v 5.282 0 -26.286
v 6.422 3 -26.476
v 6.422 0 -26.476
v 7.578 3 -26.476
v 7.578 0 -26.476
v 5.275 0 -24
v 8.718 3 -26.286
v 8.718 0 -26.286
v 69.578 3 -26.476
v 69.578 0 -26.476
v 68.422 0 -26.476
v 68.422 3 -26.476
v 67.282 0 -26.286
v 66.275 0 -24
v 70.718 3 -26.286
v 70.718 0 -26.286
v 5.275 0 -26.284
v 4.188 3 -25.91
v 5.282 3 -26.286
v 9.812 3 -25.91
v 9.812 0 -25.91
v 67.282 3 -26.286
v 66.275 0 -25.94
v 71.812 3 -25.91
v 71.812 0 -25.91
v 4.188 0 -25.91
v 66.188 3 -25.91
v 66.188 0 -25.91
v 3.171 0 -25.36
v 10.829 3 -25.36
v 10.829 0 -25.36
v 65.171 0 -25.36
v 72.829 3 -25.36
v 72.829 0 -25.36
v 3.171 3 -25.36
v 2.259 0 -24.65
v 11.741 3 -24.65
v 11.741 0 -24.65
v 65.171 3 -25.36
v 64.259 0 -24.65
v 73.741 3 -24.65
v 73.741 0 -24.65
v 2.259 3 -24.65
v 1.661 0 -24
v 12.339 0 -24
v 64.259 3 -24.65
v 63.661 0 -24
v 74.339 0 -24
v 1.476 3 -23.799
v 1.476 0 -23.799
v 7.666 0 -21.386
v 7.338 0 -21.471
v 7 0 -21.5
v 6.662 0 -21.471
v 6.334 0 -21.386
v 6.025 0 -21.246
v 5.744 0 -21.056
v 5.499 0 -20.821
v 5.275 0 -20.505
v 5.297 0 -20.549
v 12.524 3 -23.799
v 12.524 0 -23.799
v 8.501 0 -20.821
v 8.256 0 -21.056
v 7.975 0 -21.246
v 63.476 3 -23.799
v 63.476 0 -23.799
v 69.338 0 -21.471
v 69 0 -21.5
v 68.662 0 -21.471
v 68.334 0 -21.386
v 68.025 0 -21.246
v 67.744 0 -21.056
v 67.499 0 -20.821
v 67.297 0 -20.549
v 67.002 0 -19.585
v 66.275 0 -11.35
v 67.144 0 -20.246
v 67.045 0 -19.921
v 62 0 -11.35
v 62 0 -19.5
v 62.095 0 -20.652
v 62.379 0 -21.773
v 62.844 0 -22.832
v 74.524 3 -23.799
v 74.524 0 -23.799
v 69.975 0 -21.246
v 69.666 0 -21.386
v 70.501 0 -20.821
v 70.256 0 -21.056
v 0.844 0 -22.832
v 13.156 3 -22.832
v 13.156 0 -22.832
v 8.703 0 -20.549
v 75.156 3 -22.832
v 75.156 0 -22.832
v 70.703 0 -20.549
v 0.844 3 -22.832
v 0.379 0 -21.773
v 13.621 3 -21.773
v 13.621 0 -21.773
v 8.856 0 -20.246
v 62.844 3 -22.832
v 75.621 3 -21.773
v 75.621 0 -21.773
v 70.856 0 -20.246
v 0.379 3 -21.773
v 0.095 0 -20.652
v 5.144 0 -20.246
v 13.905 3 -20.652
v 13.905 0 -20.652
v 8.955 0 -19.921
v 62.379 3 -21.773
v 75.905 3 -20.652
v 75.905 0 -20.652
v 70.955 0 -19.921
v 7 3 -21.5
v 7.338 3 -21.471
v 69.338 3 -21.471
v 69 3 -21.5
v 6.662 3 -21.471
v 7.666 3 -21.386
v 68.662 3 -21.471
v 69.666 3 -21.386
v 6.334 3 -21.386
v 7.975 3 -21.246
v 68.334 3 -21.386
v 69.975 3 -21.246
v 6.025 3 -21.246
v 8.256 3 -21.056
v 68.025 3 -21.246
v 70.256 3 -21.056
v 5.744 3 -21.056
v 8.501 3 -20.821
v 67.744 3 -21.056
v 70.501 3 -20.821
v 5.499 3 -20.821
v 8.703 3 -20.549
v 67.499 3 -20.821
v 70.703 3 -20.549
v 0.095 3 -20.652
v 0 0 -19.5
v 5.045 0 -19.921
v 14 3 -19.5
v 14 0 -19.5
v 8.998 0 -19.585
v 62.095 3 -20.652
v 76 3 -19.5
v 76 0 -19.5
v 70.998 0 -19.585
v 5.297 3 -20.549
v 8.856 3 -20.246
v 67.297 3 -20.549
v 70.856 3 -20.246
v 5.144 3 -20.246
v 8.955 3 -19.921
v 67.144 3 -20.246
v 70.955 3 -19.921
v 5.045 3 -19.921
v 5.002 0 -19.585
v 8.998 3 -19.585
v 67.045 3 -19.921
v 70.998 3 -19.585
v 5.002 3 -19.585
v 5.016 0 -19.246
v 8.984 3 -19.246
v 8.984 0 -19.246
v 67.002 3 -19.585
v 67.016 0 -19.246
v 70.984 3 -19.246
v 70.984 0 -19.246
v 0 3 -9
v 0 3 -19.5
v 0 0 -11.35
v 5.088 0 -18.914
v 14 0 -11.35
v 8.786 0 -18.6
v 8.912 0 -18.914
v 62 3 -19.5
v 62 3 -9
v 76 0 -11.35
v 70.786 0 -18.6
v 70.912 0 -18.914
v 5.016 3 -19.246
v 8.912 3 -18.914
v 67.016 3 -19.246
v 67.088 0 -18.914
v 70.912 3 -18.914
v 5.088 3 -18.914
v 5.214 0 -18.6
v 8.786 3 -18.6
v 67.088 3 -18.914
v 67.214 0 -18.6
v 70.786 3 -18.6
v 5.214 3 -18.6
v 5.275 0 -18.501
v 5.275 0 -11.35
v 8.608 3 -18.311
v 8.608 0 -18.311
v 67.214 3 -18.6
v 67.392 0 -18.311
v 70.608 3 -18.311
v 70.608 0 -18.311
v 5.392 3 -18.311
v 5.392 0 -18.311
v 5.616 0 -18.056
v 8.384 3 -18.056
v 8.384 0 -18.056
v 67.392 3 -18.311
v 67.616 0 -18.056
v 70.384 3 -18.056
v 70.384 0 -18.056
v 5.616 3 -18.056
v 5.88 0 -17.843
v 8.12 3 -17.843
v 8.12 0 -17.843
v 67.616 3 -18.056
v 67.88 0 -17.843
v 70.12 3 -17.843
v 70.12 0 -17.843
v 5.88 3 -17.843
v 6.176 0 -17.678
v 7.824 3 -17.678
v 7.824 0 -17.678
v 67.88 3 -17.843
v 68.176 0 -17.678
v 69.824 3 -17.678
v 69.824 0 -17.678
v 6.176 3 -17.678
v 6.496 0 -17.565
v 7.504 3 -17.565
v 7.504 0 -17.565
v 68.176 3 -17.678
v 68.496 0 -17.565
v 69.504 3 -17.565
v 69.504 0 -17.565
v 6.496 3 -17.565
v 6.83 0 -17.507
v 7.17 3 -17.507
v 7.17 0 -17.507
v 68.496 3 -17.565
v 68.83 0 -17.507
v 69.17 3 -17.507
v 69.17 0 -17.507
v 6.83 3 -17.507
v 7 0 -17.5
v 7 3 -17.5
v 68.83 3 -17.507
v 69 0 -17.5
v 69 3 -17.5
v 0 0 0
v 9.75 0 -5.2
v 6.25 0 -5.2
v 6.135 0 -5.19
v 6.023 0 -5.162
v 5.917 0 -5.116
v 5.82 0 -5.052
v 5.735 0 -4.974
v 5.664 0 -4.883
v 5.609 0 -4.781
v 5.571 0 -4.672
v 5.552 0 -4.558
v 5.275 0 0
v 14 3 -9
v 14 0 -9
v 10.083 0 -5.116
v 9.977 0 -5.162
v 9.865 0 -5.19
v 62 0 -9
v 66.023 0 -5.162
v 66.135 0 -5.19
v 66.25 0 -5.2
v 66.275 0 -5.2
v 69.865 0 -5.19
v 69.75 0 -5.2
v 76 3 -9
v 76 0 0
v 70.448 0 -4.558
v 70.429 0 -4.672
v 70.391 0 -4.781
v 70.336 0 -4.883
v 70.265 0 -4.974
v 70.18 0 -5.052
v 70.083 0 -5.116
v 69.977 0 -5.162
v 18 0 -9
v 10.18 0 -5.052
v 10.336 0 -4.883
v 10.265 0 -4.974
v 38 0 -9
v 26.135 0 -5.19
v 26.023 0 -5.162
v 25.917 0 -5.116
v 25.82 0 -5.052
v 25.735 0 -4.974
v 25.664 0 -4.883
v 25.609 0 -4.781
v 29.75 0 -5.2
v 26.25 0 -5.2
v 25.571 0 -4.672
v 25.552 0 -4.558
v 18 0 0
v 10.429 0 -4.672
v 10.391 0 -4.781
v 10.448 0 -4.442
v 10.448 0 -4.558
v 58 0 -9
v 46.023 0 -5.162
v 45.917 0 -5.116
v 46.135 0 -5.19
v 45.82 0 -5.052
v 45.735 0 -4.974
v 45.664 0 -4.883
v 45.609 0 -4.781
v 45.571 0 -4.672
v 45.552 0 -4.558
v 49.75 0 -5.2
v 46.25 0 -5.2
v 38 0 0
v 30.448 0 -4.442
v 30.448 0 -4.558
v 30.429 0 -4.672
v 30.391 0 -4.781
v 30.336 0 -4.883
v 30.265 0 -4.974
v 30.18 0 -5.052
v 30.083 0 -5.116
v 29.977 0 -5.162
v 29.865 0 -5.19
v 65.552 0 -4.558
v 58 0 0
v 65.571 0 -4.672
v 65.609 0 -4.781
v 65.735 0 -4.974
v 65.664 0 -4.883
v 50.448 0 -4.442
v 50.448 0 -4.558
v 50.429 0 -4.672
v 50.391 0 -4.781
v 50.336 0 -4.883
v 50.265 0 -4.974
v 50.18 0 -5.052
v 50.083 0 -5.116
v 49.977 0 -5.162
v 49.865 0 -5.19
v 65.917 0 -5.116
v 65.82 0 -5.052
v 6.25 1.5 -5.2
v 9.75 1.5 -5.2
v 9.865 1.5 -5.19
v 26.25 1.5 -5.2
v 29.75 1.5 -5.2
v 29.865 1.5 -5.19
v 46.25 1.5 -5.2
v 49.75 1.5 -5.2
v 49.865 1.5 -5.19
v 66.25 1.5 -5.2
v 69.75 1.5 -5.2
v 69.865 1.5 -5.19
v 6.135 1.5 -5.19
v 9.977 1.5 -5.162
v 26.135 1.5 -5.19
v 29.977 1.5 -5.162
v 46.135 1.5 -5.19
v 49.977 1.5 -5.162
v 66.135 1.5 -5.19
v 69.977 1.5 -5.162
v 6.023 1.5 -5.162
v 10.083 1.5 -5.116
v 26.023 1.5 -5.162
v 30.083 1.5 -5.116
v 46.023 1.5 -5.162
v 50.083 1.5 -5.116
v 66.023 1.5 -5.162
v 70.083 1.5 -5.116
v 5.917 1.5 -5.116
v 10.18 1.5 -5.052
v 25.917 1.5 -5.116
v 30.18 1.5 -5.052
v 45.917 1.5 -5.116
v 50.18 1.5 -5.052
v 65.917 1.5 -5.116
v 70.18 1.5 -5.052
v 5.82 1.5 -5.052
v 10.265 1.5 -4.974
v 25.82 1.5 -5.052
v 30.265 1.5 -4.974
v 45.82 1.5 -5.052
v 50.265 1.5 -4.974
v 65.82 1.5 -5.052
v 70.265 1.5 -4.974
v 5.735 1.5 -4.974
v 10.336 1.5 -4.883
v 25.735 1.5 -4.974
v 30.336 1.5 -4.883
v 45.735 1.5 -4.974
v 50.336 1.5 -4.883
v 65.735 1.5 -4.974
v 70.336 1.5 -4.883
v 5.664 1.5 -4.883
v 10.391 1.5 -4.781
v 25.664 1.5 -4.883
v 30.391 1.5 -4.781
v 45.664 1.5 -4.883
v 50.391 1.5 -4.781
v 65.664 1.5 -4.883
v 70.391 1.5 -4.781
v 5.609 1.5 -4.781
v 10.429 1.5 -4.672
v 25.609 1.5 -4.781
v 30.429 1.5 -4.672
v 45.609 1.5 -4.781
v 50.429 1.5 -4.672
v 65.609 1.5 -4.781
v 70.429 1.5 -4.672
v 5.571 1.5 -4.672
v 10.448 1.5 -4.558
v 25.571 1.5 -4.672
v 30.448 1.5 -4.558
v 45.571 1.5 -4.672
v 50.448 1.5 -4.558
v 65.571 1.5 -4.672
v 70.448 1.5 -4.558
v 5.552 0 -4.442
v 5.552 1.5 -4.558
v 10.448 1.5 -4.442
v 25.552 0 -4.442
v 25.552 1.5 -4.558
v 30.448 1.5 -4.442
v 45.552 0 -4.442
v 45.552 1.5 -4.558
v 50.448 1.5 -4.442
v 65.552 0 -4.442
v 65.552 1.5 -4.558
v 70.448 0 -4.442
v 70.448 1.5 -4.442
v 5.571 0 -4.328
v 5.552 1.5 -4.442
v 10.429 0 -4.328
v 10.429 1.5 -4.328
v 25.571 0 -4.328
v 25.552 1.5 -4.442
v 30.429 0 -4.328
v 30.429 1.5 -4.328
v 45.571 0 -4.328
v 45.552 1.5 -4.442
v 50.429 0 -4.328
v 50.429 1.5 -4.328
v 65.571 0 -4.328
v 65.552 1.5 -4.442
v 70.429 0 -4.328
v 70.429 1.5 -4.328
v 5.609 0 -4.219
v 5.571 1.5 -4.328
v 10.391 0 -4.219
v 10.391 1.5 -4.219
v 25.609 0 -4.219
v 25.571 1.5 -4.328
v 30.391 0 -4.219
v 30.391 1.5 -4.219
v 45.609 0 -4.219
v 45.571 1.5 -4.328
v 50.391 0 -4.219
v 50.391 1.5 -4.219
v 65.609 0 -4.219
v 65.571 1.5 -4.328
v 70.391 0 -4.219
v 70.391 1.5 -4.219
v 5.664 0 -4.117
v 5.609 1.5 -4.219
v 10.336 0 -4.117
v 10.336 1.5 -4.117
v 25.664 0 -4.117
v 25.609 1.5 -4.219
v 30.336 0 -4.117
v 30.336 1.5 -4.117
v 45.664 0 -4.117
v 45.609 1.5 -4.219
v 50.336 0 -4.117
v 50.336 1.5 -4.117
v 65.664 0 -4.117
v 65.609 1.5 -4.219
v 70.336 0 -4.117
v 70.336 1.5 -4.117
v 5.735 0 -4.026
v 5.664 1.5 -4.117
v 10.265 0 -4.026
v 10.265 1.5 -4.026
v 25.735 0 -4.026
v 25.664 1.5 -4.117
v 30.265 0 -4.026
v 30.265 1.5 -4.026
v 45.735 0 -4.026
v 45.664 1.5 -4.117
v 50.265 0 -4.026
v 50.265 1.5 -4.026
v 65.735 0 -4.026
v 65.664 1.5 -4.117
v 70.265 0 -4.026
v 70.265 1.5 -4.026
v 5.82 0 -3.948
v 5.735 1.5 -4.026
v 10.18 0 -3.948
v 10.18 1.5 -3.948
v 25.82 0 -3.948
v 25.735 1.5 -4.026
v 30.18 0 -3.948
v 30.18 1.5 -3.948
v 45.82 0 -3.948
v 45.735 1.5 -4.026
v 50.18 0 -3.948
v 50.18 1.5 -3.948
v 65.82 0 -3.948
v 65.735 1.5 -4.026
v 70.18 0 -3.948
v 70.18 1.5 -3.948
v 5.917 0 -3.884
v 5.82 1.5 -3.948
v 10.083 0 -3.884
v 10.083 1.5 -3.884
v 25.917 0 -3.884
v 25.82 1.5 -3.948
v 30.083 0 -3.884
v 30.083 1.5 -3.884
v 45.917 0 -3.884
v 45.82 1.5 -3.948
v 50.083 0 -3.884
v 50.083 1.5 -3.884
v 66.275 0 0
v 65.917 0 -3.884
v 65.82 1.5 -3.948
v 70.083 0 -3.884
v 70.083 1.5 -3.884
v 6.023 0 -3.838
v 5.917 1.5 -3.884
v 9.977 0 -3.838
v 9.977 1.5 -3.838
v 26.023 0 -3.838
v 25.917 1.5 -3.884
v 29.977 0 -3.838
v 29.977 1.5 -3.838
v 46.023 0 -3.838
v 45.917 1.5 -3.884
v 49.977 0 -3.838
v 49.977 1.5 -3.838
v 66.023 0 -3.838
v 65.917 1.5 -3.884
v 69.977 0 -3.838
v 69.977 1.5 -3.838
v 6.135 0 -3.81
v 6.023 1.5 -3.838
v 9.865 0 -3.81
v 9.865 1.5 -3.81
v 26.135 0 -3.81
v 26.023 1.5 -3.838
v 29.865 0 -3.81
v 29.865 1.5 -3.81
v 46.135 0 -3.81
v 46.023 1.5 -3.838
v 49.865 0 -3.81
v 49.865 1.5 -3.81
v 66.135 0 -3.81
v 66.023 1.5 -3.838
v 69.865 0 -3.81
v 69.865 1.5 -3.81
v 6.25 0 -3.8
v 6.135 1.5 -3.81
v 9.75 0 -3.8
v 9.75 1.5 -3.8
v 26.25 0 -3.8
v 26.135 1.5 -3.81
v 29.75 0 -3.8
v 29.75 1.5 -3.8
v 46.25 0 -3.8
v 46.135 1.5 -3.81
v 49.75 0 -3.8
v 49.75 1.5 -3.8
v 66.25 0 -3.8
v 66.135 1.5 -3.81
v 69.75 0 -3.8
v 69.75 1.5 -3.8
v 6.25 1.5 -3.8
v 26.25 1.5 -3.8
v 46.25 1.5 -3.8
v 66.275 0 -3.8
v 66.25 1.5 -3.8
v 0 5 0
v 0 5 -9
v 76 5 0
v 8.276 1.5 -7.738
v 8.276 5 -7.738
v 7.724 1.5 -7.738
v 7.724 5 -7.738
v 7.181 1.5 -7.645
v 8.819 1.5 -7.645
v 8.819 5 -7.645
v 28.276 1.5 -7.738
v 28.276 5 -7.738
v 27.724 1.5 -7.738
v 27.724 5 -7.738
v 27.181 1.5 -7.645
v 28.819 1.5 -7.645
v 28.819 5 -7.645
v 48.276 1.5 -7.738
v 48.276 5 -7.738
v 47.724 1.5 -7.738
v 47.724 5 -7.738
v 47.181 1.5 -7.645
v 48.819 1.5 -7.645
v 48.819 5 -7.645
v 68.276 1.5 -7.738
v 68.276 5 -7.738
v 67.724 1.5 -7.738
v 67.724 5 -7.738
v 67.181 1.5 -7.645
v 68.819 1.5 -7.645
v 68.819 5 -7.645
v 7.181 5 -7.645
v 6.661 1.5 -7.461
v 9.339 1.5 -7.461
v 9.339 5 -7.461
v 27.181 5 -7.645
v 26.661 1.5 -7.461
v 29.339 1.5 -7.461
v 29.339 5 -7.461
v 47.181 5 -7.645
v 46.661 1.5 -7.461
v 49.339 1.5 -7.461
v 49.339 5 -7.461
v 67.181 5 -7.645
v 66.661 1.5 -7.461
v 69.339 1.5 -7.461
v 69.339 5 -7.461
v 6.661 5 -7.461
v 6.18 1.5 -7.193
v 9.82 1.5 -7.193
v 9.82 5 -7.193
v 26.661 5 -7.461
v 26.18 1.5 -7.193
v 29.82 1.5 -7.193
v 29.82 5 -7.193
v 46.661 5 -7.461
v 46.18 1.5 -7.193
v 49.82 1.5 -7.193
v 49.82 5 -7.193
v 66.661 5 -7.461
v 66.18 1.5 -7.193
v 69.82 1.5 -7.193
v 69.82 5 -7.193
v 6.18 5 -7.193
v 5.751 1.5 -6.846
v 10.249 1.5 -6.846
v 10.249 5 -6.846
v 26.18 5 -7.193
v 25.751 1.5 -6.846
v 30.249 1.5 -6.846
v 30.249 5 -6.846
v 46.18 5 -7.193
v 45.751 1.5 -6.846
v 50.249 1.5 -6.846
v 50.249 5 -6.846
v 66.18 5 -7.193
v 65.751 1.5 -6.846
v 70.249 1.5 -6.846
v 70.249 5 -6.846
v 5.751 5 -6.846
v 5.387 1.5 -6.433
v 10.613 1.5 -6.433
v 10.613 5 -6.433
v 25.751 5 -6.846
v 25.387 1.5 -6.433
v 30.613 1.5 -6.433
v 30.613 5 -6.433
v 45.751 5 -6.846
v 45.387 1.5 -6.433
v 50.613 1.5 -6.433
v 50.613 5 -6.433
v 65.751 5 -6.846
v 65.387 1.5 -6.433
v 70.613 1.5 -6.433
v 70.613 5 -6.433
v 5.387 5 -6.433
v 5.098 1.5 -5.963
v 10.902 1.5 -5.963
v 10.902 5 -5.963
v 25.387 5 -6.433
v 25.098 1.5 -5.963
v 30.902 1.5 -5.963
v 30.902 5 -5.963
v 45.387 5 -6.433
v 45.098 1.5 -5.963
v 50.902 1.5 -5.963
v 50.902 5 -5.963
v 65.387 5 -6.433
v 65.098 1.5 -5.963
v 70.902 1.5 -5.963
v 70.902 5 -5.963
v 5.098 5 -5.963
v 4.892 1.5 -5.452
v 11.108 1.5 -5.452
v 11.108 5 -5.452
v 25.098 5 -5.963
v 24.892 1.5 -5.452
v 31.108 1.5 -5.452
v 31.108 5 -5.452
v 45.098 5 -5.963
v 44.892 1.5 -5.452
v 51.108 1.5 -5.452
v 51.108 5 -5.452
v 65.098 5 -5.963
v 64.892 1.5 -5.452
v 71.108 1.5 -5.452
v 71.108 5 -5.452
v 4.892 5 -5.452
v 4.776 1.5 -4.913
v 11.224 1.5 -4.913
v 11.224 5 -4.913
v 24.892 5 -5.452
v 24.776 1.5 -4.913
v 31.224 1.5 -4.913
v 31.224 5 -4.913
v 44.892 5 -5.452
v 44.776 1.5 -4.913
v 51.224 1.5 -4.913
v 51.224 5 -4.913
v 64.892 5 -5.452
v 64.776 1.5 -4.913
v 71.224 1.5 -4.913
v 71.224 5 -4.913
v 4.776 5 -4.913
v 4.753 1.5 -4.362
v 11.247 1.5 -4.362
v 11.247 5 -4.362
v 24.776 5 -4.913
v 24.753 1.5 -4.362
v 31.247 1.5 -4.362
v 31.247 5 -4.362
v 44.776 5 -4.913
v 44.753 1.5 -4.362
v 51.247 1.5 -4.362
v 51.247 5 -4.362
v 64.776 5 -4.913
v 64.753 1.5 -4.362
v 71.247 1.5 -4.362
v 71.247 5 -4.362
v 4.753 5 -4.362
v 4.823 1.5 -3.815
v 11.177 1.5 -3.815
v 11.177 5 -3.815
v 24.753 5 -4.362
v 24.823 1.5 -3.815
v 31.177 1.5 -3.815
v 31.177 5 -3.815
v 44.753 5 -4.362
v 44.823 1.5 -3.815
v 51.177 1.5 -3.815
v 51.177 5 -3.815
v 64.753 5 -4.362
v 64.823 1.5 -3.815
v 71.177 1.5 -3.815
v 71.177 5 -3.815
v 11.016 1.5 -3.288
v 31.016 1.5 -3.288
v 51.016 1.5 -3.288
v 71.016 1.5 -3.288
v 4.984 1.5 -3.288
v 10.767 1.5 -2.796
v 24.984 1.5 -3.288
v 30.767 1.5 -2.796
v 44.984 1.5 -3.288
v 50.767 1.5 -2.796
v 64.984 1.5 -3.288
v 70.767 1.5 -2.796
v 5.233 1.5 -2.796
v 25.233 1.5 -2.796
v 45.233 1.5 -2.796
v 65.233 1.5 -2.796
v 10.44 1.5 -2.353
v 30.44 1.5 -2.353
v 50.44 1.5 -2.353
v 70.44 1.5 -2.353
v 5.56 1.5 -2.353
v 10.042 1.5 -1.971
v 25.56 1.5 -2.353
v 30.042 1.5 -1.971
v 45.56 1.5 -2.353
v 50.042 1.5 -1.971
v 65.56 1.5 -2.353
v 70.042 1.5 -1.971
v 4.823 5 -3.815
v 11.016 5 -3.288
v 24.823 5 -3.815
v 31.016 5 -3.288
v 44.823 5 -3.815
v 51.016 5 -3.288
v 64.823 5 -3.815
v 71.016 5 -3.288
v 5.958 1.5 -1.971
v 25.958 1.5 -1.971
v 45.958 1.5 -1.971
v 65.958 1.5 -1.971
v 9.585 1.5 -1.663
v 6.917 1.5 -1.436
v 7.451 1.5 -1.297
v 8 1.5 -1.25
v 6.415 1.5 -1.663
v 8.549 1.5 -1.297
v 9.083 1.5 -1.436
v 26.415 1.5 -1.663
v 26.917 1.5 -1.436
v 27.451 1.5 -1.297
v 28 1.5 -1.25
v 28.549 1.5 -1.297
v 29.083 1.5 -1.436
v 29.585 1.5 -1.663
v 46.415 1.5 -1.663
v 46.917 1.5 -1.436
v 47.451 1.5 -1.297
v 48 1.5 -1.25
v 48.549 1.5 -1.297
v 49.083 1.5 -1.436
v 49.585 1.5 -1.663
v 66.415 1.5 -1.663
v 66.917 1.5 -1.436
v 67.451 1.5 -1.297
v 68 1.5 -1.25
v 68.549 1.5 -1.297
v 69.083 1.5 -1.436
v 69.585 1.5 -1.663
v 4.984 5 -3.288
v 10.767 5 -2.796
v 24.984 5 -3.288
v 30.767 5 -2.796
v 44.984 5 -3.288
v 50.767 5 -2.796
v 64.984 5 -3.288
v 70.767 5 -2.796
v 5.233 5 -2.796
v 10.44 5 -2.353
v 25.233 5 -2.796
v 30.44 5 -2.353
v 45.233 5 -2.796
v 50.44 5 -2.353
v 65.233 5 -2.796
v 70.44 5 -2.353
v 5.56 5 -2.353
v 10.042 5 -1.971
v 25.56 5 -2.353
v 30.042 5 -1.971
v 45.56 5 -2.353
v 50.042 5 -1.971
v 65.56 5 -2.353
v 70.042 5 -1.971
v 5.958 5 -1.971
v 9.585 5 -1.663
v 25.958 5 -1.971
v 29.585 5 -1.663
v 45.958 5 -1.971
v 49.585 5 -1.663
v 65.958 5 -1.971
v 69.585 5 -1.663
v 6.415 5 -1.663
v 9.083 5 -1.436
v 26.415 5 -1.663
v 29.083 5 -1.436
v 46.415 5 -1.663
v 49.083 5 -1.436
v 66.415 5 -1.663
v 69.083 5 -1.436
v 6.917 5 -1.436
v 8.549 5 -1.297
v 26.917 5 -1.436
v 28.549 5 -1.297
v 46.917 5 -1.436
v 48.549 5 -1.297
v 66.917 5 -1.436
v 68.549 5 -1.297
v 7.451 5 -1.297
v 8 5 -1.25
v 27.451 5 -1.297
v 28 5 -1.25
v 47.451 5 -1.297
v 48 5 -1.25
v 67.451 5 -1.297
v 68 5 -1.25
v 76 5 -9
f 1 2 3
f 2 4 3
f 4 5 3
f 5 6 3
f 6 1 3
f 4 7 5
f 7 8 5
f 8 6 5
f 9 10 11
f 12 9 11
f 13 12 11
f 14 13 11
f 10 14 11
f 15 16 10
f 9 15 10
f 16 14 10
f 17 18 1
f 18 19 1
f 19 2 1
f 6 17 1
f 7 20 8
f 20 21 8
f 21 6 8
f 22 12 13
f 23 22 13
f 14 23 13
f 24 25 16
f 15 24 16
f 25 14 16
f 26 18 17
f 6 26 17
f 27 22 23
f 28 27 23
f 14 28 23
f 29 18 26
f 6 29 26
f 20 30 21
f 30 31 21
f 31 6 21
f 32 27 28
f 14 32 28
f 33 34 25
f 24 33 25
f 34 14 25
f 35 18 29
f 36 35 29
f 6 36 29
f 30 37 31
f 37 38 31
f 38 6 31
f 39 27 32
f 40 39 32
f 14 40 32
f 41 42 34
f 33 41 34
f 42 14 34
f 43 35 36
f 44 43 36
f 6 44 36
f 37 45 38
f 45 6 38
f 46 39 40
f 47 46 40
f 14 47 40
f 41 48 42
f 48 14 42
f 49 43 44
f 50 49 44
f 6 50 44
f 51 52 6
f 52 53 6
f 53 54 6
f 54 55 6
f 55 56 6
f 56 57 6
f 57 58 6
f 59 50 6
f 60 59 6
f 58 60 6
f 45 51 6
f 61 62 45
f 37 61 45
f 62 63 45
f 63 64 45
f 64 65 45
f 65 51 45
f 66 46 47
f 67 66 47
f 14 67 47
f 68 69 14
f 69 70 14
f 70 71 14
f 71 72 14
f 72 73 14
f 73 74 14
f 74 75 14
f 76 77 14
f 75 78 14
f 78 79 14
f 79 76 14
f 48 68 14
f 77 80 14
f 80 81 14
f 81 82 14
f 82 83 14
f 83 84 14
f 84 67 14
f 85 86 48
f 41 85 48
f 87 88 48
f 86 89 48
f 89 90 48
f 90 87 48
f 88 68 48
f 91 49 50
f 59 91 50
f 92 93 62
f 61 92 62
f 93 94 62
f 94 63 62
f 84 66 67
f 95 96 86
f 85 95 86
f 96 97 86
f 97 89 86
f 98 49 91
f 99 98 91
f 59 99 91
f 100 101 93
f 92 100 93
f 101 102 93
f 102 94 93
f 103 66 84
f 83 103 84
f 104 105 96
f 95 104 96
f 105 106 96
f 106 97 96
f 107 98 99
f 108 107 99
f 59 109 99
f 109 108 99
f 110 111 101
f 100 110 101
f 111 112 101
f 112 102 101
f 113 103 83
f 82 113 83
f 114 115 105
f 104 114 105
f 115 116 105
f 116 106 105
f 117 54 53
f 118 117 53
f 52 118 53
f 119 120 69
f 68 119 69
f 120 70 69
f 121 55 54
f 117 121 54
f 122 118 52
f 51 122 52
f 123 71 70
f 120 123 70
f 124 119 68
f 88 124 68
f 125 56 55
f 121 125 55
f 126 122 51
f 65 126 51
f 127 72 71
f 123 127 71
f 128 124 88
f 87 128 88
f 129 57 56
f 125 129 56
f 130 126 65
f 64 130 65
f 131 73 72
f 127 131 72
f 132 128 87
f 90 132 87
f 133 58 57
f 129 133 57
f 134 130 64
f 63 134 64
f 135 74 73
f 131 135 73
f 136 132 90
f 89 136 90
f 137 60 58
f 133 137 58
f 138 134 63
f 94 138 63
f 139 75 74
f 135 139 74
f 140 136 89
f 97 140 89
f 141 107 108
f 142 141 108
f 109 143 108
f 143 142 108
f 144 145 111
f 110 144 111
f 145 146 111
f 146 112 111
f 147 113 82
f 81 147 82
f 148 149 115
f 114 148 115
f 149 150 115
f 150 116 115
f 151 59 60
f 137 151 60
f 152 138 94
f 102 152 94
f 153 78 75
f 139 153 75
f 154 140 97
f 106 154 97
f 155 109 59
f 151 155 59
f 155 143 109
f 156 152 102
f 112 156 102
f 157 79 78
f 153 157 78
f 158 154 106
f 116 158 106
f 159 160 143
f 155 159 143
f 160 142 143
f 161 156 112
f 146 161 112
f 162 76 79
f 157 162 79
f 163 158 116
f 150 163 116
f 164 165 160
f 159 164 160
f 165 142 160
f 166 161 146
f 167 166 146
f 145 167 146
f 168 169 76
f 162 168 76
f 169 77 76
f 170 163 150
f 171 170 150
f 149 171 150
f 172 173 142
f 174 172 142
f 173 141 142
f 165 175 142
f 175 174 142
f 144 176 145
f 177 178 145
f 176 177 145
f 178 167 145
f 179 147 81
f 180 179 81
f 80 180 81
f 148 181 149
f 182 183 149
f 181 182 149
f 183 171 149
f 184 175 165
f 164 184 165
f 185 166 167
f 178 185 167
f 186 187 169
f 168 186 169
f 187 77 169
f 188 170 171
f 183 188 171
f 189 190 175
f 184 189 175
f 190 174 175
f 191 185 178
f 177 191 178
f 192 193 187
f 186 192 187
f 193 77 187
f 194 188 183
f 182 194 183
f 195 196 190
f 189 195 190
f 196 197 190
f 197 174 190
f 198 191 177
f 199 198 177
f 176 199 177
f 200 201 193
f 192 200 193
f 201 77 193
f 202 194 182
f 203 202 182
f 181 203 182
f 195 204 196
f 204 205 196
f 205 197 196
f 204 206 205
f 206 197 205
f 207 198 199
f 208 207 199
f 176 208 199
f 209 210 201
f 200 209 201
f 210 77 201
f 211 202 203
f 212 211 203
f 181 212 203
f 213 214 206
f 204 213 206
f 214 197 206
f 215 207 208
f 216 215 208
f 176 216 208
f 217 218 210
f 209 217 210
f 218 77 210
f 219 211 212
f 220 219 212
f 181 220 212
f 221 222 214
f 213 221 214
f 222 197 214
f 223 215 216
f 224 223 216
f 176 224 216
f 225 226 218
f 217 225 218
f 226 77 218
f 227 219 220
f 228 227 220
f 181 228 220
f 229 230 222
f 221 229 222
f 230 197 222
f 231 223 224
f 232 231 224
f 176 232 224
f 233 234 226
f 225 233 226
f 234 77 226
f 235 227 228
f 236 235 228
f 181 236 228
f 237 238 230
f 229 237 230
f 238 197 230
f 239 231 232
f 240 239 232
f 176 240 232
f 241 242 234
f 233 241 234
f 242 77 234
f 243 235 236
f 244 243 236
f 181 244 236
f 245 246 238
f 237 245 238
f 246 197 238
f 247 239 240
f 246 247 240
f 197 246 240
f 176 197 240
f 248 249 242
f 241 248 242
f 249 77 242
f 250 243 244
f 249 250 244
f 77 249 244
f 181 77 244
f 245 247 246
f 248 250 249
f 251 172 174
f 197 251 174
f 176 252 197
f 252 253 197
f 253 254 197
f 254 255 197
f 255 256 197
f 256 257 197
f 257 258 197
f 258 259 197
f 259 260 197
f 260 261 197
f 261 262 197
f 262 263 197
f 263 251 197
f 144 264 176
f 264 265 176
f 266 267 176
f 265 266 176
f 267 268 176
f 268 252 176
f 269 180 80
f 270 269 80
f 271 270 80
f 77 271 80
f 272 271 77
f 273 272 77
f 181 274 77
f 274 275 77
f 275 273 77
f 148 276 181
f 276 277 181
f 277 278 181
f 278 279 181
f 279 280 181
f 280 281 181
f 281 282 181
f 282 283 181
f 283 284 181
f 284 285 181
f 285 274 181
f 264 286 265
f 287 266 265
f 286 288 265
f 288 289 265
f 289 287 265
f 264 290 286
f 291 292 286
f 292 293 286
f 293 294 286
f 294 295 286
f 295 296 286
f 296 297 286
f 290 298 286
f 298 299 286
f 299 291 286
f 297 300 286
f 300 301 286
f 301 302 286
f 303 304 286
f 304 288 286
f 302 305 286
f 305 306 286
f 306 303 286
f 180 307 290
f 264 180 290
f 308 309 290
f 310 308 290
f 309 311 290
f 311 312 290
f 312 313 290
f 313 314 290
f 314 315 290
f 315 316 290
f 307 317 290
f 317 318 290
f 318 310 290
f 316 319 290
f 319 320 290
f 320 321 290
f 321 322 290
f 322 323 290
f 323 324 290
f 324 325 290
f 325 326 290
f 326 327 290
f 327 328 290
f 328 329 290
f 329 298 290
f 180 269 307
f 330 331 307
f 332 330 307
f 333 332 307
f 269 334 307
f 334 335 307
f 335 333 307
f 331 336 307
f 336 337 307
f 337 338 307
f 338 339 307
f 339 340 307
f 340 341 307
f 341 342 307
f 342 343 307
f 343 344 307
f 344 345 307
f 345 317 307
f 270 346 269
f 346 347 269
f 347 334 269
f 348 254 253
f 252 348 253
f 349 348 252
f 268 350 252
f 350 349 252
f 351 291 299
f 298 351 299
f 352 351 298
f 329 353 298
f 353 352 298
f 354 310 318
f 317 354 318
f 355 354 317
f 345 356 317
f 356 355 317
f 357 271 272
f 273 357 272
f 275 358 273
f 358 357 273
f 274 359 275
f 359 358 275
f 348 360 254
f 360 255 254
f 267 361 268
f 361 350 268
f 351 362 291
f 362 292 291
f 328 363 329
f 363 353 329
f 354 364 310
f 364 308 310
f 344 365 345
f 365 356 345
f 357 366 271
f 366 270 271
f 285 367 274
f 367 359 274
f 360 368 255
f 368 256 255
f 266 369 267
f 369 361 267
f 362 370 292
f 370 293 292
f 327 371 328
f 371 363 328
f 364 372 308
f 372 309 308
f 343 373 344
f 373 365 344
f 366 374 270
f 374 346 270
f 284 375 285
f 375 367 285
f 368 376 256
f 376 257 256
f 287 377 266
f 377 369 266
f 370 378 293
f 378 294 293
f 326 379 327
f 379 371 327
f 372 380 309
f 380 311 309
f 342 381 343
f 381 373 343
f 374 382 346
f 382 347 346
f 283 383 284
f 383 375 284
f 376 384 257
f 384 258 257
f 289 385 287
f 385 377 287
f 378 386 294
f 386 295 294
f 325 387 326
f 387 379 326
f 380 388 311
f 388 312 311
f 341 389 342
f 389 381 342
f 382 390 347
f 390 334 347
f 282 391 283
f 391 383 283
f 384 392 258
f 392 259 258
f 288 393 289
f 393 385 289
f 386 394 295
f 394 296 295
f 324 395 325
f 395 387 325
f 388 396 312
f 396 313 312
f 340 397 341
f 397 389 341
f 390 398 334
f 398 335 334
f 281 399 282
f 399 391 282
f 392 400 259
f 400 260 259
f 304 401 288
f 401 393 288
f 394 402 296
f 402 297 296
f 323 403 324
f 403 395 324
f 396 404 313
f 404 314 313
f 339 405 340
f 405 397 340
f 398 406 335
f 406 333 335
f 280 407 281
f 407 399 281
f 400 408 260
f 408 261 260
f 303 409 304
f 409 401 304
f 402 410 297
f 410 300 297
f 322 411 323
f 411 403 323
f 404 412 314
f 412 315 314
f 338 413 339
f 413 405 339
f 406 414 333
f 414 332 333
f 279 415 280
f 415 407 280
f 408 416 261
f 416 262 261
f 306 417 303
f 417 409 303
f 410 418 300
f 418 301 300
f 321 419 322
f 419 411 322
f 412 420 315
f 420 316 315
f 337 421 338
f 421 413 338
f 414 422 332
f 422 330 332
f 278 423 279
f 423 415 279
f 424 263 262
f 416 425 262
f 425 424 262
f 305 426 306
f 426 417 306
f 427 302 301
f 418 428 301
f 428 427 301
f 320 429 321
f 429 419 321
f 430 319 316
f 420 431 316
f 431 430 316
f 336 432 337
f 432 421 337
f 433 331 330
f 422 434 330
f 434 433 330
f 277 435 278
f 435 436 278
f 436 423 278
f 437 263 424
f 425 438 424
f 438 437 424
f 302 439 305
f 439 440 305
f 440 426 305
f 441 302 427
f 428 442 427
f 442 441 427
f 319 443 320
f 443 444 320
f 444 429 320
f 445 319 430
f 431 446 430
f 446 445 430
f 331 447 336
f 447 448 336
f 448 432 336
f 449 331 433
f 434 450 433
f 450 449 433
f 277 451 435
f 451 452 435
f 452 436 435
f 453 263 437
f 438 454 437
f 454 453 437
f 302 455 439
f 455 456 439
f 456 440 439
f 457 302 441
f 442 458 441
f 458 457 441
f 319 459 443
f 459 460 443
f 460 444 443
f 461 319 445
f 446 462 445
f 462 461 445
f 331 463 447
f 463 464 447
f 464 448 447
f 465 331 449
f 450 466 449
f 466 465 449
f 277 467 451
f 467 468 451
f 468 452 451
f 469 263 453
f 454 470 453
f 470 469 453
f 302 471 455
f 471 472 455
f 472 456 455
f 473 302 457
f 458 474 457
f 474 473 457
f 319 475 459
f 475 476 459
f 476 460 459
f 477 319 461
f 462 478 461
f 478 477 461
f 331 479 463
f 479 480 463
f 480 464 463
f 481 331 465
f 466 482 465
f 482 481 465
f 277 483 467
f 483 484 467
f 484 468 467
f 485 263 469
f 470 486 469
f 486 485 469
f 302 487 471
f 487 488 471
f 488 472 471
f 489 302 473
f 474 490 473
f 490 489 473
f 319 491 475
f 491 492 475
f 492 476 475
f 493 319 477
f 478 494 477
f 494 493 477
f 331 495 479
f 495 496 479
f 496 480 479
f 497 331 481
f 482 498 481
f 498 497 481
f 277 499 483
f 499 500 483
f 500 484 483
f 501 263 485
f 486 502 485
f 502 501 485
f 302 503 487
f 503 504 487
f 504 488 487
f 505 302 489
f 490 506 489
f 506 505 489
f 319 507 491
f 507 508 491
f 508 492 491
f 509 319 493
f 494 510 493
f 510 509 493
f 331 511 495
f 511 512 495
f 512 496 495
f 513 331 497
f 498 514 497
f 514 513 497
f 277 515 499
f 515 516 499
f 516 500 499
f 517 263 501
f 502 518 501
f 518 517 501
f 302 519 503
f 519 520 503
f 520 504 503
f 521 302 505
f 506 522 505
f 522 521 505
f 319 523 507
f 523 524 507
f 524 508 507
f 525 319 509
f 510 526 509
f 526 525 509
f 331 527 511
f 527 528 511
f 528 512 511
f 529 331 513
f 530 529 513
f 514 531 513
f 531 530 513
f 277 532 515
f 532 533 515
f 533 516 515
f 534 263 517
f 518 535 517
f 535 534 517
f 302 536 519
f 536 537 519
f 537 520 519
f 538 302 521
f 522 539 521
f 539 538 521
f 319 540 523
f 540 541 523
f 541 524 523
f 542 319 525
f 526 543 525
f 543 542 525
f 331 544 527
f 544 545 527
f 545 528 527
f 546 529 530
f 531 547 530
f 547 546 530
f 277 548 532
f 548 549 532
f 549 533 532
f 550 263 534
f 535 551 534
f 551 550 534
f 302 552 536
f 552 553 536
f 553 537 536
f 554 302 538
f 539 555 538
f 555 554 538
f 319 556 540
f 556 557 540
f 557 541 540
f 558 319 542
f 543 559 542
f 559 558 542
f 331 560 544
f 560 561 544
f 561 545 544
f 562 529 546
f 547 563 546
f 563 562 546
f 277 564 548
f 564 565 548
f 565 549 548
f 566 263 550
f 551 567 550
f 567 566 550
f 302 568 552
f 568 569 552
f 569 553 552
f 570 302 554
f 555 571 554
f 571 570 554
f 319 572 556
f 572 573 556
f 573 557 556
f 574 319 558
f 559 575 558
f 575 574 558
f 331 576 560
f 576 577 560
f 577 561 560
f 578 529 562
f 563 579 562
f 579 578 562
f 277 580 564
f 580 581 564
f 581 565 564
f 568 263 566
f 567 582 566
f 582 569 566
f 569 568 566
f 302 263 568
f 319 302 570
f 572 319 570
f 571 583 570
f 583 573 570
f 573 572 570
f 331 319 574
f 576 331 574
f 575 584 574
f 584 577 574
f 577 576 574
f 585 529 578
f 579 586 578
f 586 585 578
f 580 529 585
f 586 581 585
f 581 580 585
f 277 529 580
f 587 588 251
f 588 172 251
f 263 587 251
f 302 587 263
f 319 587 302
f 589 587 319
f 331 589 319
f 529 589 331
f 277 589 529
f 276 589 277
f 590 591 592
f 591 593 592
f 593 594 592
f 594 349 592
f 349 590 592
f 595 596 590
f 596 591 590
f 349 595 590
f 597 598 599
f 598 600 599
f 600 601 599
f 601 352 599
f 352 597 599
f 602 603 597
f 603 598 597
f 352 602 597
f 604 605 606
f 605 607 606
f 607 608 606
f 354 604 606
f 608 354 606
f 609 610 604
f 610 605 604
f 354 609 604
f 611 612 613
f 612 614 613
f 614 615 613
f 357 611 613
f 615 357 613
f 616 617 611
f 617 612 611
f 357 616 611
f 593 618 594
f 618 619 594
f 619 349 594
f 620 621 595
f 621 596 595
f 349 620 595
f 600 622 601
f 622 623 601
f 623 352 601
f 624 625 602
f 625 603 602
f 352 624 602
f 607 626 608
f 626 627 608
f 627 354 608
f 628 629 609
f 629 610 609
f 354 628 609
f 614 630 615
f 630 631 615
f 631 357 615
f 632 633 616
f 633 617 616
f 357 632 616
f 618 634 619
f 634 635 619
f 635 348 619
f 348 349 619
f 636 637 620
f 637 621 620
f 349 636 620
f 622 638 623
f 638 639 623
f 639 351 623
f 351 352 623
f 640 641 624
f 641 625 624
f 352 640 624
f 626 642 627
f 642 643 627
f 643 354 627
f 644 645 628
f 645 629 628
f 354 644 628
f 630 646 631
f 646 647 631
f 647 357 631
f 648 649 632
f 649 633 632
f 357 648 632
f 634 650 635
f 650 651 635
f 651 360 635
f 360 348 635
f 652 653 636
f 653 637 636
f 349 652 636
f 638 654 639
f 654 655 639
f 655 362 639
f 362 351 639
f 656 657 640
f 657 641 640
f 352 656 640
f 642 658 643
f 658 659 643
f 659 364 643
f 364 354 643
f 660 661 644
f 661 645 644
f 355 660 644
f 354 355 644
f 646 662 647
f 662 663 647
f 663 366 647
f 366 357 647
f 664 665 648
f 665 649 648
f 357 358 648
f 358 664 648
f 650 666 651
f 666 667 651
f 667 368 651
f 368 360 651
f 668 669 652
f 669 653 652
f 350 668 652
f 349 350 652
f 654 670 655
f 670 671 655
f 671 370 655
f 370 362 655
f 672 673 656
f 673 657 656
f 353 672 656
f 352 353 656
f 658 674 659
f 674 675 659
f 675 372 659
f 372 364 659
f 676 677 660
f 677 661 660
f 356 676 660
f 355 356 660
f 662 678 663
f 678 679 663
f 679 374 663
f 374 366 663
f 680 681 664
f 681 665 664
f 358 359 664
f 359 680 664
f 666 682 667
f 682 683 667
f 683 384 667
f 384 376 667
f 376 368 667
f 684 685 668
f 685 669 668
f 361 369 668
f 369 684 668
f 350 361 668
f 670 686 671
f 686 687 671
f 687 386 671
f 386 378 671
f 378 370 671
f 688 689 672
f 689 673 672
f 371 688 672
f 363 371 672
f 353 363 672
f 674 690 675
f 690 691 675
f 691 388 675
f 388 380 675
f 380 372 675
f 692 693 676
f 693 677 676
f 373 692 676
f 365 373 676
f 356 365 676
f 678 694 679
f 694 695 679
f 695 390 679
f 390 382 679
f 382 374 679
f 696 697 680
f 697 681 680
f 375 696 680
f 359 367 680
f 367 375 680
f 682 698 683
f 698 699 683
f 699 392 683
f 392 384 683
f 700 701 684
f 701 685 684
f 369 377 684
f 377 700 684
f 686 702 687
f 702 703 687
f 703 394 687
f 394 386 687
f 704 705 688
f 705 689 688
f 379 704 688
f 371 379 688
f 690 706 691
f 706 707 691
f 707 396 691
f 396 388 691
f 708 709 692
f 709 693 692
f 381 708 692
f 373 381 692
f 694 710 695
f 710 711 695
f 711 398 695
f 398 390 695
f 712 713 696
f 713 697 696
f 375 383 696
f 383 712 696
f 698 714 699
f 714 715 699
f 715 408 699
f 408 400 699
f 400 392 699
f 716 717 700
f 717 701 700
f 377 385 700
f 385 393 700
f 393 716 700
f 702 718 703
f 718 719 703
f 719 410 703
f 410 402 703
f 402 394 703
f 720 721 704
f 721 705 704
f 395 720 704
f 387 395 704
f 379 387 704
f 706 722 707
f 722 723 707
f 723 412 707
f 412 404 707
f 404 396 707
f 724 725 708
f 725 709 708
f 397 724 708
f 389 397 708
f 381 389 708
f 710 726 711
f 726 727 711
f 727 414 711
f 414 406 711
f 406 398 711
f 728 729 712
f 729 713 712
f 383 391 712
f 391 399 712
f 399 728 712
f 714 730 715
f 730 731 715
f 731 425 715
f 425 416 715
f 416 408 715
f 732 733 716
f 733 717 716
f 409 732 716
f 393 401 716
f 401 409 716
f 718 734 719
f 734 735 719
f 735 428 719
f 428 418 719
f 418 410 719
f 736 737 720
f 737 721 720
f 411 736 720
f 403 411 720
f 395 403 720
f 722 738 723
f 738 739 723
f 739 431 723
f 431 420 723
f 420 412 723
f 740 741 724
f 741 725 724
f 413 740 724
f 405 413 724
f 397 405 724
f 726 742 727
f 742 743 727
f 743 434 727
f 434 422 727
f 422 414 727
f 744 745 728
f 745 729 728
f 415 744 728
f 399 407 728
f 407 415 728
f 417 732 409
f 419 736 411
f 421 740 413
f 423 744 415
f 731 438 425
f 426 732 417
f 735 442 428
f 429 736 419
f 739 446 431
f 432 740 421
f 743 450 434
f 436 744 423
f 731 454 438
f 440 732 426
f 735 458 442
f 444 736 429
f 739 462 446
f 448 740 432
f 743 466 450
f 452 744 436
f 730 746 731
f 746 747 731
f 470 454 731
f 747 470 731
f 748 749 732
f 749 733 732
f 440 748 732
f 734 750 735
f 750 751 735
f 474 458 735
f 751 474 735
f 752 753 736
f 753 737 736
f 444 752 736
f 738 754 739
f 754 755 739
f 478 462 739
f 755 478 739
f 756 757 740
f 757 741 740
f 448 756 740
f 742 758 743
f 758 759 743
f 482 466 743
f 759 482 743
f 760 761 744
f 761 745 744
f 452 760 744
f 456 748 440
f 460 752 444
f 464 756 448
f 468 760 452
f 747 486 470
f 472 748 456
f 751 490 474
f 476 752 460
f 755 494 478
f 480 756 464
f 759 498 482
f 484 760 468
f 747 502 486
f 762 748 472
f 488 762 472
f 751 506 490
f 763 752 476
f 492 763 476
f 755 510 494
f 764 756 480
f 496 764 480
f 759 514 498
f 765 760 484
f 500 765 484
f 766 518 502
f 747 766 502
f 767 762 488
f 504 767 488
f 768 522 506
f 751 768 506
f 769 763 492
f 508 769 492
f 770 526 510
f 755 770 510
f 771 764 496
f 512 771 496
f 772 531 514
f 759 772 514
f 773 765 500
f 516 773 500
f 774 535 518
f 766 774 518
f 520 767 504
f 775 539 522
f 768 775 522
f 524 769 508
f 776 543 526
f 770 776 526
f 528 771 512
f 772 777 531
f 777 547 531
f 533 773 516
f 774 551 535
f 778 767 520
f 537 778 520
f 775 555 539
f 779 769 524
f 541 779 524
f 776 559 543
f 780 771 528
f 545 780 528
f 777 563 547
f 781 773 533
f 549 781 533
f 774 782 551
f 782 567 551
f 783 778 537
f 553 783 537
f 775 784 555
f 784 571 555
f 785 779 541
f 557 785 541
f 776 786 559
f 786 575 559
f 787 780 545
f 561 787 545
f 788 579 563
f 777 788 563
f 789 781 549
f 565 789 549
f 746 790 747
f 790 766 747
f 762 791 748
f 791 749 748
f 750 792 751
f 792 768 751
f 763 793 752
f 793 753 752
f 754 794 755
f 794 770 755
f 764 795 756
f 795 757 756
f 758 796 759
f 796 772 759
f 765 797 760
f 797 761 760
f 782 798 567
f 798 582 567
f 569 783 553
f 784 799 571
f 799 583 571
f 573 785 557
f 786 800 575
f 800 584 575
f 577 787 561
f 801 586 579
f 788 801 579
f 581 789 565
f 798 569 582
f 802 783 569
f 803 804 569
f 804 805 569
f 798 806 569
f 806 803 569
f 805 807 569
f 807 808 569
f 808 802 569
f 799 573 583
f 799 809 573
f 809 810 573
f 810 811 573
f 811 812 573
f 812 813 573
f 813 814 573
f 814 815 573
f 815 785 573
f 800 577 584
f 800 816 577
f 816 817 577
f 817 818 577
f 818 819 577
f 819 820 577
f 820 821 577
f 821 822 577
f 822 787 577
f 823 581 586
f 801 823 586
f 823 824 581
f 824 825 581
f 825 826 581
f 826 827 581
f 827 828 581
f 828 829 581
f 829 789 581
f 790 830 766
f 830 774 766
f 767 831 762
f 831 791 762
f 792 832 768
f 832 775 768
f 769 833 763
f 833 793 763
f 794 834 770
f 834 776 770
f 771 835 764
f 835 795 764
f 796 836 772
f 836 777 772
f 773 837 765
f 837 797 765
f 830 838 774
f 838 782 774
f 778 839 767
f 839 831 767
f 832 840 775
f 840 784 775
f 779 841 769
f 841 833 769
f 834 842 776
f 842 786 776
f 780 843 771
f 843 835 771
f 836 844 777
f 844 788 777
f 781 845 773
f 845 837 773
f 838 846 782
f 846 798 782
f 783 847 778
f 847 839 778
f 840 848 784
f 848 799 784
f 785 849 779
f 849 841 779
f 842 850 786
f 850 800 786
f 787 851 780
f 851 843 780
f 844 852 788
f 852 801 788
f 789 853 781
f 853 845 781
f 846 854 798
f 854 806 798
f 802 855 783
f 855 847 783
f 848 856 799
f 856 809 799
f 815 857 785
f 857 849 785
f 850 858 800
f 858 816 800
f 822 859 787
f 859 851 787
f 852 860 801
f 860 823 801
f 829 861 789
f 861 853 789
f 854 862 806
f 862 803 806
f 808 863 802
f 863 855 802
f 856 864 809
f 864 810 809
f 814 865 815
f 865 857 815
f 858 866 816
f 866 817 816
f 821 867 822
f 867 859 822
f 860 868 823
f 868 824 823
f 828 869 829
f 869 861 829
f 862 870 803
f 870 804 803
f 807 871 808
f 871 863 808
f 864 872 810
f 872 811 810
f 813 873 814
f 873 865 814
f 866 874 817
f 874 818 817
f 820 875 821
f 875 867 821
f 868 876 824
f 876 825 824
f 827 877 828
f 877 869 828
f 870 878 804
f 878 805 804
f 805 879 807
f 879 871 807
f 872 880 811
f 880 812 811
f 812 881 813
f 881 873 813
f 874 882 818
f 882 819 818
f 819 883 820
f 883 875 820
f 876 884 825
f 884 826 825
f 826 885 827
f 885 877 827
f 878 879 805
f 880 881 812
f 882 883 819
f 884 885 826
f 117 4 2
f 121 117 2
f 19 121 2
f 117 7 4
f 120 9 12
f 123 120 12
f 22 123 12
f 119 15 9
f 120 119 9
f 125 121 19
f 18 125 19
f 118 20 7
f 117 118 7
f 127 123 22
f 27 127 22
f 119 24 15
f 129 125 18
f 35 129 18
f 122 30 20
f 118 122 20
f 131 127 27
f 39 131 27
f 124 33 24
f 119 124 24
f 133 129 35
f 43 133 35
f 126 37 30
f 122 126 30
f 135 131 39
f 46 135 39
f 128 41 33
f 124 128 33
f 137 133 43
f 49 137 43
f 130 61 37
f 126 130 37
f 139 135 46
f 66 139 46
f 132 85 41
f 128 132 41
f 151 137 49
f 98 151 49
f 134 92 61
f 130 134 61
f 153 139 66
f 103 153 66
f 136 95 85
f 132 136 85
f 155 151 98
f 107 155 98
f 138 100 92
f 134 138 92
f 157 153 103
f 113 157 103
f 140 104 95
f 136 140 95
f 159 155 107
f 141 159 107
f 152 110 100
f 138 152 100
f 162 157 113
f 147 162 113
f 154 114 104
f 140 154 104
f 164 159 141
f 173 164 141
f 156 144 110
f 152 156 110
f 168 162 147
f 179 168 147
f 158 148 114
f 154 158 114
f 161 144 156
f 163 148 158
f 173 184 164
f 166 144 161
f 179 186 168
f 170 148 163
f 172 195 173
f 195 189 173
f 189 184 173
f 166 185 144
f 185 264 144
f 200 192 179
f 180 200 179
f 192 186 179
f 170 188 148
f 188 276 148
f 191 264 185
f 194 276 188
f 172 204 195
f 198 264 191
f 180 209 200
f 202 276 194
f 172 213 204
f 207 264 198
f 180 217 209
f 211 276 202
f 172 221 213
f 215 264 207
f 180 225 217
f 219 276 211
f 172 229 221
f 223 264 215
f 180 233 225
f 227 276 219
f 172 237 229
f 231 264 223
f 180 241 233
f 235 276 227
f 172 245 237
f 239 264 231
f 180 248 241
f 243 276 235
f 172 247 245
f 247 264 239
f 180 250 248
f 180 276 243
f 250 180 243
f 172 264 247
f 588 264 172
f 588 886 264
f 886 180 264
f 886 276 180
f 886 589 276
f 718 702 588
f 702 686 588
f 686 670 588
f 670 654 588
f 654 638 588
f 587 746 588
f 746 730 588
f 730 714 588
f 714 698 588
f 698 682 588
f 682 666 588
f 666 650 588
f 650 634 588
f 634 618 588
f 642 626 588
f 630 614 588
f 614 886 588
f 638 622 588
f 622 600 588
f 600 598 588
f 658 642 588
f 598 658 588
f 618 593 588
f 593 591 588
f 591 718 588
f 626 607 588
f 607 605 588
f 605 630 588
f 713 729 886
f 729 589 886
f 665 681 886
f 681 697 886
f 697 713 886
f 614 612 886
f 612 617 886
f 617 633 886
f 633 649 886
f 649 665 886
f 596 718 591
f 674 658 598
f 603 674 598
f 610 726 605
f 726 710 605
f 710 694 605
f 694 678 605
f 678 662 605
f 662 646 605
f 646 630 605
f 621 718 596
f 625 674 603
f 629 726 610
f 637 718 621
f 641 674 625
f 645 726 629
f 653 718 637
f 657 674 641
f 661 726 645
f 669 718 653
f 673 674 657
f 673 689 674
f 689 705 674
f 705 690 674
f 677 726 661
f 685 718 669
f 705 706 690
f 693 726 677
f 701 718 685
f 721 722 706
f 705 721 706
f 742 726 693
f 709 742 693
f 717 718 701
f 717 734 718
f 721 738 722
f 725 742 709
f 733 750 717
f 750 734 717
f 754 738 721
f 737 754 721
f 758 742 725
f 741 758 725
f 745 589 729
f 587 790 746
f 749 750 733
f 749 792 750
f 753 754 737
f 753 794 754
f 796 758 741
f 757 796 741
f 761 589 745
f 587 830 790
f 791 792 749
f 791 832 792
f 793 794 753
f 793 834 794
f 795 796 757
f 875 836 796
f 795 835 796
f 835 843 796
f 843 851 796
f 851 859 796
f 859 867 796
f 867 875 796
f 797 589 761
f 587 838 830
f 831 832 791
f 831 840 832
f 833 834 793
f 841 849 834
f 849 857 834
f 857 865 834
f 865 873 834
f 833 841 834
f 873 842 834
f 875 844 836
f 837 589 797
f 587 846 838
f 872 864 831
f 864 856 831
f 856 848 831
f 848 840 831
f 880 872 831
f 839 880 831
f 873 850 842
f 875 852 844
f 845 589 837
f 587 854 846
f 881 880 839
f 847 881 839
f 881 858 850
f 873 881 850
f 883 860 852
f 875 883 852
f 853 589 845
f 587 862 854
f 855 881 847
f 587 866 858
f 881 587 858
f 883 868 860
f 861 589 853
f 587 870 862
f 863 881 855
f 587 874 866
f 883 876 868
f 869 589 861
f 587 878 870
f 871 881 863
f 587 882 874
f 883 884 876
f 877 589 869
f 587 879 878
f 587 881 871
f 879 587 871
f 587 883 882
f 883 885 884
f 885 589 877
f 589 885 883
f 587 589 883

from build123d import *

# Parameters (mm, degrees)
SKETCH1_R           = 2
BOSS_EXTRUDE1_DEPTH = 3
SKETCH2_W           = 76
SKETCH2_H           = 9
BOSS_EXTRUDE2_DEPTH = 2
SKETCH3_R           = 3.25
CUT_EXTRUDE1_DEPTH  = 3.5
CUT_EXTRUDE2_REACH  = 82.564


with BuildPart() as part:
    # Sketch1 → Boss-Extrude1 (new body)
    with BuildSketch(Plane(origin=(0, 0, 0), x_dir=(1, 0, 0), z_dir=(0, 1, 0))):
        with BuildLine():
            ThreePointArc((76, 19.5), (69, 26.5), (62, 19.5))
            Line((62, 19.5), (62, 9))
            Line((62, 9), (14, 9))
            Line((14, 9), (14, 19.5))
            ThreePointArc((14, 19.5), (7, 26.5), (0, 19.5))
            Line((0, 19.5), (0, 0))
            Line((0, 0), (76, 0))
            Line((76, 0), (76, 19.5))
        make_face()
        with Locations(Location((69, 19.5, 0), (0, 0, 270))):
            Circle(SKETCH1_R, mode=Mode.SUBTRACT)
        with Locations(Location((7, 19.5, 0), (0, 0, 270))):
            Circle(SKETCH1_R, mode=Mode.SUBTRACT)
    extrude(amount=BOSS_EXTRUDE1_DEPTH)

    # Sketch2 → Boss-Extrude2 (add)
    with BuildSketch(Plane(origin=(0, 3, 0), x_dir=(1, 0, 0), z_dir=(0, 1, 0))):
        with Locations((38, 4.5)):
            Rectangle(SKETCH2_W, SKETCH2_H)
    extrude(amount=BOSS_EXTRUDE2_DEPTH)

    # Sketch3 → Cut-Extrude1 (cut)
    with BuildSketch(Plane(origin=(0, 5, 0), x_dir=(1, 0, 0), z_dir=(0, 1, 0))):
        with Locations(Location((8, 4.5, 0), (0, 0, 270))):
            Circle(SKETCH3_R)
        with Locations(Location((28, 4.5, 0), (0, 0, 270))):
            Circle(SKETCH3_R)
        with Locations(Location((48, 4.5, 0), (0, 0, 270))):
            Circle(SKETCH3_R)
        with Locations(Location((68, 4.5, 0), (0, 0, 270))):
            Circle(SKETCH3_R)
    extrude(amount=-CUT_EXTRUDE1_DEPTH, mode=Mode.SUBTRACT)

    # Sketch4 → Cut-Extrude2 (cut, up to next)
    with BuildSketch(Plane(origin=(0, 1.5, 0), x_dir=(1, 0, 0), z_dir=(0, 1, 0)), mode=Mode.PRIVATE) as cut_extrude2_sk1:
        with BuildLine():
            Line((6.25, 5.2), (9.75, 5.2))
            ThreePointArc((9.75, 5.2), (10.45, 4.5), (9.75, 3.8))
            Line((9.75, 3.8), (6.25, 3.8))
            ThreePointArc((6.25, 3.8), (5.55, 4.5), (6.25, 5.2))
        make_face()
    cut_extrude2_tool1 = extrude(cut_extrude2_sk1.sketch, amount=-CUT_EXTRUDE2_REACH, mode=Mode.PRIVATE) & part.part
    # Sketch4 → Cut-Extrude2 (cut, up to next)
    with BuildSketch(Plane(origin=(0, 1.5, 0), x_dir=(1, 0, 0), z_dir=(0, 1, 0)), mode=Mode.PRIVATE) as cut_extrude2_sk2:
        with BuildLine():
            Line((26.25, 5.2), (29.75, 5.2))
            ThreePointArc((29.75, 5.2), (30.45, 4.5), (29.75, 3.8))
            Line((29.75, 3.8), (26.25, 3.8))
            ThreePointArc((26.25, 3.8), (25.55, 4.5), (26.25, 5.2))
        make_face()
    cut_extrude2_tool2 = extrude(cut_extrude2_sk2.sketch, amount=-CUT_EXTRUDE2_REACH, mode=Mode.PRIVATE) & part.part
    # Sketch4 → Cut-Extrude2 (cut, up to next)
    with BuildSketch(Plane(origin=(0, 1.5, 0), x_dir=(1, 0, 0), z_dir=(0, 1, 0)), mode=Mode.PRIVATE) as cut_extrude2_sk3:
        with BuildLine():
            Line((46.25, 5.2), (49.75, 5.2))
            ThreePointArc((49.75, 5.2), (50.45, 4.5), (49.75, 3.8))
            Line((49.75, 3.8), (46.25, 3.8))
            ThreePointArc((46.25, 3.8), (45.55, 4.5), (46.25, 5.2))
        make_face()
    cut_extrude2_tool3 = extrude(cut_extrude2_sk3.sketch, amount=-CUT_EXTRUDE2_REACH, mode=Mode.PRIVATE) & part.part
    # Sketch4 → Cut-Extrude2 (cut, up to next)
    with BuildSketch(Plane(origin=(0, 1.5, 0), x_dir=(1, 0, 0), z_dir=(0, 1, 0)), mode=Mode.PRIVATE) as cut_extrude2_sk4:
        with BuildLine():
            Line((66.25, 5.2), (69.75, 5.2))
            ThreePointArc((69.75, 5.2), (70.45, 4.5), (69.75, 3.8))
            Line((69.75, 3.8), (66.25, 3.8))
            ThreePointArc((66.25, 3.8), (65.55, 4.5), (66.25, 5.2))
        make_face()
    cut_extrude2_tool4 = extrude(cut_extrude2_sk4.sketch, amount=-CUT_EXTRUDE2_REACH, mode=Mode.PRIVATE) & part.part
    add(cut_extrude2_tool1.solids().sort_by_distance((8, 1.5, -4.5))[0], mode=Mode.SUBTRACT)
    add(cut_extrude2_tool2.solids().sort_by_distance((28, 1.5, -4.5))[0], mode=Mode.SUBTRACT)
    add(cut_extrude2_tool3.solids().sort_by_distance((48, 1.5, -4.5))[0], mode=Mode.SUBTRACT)
    add(cut_extrude2_tool4.solids().sort_by_distance((68, 1.5, -4.5))[0], mode=Mode.SUBTRACT)


solid = part.part
